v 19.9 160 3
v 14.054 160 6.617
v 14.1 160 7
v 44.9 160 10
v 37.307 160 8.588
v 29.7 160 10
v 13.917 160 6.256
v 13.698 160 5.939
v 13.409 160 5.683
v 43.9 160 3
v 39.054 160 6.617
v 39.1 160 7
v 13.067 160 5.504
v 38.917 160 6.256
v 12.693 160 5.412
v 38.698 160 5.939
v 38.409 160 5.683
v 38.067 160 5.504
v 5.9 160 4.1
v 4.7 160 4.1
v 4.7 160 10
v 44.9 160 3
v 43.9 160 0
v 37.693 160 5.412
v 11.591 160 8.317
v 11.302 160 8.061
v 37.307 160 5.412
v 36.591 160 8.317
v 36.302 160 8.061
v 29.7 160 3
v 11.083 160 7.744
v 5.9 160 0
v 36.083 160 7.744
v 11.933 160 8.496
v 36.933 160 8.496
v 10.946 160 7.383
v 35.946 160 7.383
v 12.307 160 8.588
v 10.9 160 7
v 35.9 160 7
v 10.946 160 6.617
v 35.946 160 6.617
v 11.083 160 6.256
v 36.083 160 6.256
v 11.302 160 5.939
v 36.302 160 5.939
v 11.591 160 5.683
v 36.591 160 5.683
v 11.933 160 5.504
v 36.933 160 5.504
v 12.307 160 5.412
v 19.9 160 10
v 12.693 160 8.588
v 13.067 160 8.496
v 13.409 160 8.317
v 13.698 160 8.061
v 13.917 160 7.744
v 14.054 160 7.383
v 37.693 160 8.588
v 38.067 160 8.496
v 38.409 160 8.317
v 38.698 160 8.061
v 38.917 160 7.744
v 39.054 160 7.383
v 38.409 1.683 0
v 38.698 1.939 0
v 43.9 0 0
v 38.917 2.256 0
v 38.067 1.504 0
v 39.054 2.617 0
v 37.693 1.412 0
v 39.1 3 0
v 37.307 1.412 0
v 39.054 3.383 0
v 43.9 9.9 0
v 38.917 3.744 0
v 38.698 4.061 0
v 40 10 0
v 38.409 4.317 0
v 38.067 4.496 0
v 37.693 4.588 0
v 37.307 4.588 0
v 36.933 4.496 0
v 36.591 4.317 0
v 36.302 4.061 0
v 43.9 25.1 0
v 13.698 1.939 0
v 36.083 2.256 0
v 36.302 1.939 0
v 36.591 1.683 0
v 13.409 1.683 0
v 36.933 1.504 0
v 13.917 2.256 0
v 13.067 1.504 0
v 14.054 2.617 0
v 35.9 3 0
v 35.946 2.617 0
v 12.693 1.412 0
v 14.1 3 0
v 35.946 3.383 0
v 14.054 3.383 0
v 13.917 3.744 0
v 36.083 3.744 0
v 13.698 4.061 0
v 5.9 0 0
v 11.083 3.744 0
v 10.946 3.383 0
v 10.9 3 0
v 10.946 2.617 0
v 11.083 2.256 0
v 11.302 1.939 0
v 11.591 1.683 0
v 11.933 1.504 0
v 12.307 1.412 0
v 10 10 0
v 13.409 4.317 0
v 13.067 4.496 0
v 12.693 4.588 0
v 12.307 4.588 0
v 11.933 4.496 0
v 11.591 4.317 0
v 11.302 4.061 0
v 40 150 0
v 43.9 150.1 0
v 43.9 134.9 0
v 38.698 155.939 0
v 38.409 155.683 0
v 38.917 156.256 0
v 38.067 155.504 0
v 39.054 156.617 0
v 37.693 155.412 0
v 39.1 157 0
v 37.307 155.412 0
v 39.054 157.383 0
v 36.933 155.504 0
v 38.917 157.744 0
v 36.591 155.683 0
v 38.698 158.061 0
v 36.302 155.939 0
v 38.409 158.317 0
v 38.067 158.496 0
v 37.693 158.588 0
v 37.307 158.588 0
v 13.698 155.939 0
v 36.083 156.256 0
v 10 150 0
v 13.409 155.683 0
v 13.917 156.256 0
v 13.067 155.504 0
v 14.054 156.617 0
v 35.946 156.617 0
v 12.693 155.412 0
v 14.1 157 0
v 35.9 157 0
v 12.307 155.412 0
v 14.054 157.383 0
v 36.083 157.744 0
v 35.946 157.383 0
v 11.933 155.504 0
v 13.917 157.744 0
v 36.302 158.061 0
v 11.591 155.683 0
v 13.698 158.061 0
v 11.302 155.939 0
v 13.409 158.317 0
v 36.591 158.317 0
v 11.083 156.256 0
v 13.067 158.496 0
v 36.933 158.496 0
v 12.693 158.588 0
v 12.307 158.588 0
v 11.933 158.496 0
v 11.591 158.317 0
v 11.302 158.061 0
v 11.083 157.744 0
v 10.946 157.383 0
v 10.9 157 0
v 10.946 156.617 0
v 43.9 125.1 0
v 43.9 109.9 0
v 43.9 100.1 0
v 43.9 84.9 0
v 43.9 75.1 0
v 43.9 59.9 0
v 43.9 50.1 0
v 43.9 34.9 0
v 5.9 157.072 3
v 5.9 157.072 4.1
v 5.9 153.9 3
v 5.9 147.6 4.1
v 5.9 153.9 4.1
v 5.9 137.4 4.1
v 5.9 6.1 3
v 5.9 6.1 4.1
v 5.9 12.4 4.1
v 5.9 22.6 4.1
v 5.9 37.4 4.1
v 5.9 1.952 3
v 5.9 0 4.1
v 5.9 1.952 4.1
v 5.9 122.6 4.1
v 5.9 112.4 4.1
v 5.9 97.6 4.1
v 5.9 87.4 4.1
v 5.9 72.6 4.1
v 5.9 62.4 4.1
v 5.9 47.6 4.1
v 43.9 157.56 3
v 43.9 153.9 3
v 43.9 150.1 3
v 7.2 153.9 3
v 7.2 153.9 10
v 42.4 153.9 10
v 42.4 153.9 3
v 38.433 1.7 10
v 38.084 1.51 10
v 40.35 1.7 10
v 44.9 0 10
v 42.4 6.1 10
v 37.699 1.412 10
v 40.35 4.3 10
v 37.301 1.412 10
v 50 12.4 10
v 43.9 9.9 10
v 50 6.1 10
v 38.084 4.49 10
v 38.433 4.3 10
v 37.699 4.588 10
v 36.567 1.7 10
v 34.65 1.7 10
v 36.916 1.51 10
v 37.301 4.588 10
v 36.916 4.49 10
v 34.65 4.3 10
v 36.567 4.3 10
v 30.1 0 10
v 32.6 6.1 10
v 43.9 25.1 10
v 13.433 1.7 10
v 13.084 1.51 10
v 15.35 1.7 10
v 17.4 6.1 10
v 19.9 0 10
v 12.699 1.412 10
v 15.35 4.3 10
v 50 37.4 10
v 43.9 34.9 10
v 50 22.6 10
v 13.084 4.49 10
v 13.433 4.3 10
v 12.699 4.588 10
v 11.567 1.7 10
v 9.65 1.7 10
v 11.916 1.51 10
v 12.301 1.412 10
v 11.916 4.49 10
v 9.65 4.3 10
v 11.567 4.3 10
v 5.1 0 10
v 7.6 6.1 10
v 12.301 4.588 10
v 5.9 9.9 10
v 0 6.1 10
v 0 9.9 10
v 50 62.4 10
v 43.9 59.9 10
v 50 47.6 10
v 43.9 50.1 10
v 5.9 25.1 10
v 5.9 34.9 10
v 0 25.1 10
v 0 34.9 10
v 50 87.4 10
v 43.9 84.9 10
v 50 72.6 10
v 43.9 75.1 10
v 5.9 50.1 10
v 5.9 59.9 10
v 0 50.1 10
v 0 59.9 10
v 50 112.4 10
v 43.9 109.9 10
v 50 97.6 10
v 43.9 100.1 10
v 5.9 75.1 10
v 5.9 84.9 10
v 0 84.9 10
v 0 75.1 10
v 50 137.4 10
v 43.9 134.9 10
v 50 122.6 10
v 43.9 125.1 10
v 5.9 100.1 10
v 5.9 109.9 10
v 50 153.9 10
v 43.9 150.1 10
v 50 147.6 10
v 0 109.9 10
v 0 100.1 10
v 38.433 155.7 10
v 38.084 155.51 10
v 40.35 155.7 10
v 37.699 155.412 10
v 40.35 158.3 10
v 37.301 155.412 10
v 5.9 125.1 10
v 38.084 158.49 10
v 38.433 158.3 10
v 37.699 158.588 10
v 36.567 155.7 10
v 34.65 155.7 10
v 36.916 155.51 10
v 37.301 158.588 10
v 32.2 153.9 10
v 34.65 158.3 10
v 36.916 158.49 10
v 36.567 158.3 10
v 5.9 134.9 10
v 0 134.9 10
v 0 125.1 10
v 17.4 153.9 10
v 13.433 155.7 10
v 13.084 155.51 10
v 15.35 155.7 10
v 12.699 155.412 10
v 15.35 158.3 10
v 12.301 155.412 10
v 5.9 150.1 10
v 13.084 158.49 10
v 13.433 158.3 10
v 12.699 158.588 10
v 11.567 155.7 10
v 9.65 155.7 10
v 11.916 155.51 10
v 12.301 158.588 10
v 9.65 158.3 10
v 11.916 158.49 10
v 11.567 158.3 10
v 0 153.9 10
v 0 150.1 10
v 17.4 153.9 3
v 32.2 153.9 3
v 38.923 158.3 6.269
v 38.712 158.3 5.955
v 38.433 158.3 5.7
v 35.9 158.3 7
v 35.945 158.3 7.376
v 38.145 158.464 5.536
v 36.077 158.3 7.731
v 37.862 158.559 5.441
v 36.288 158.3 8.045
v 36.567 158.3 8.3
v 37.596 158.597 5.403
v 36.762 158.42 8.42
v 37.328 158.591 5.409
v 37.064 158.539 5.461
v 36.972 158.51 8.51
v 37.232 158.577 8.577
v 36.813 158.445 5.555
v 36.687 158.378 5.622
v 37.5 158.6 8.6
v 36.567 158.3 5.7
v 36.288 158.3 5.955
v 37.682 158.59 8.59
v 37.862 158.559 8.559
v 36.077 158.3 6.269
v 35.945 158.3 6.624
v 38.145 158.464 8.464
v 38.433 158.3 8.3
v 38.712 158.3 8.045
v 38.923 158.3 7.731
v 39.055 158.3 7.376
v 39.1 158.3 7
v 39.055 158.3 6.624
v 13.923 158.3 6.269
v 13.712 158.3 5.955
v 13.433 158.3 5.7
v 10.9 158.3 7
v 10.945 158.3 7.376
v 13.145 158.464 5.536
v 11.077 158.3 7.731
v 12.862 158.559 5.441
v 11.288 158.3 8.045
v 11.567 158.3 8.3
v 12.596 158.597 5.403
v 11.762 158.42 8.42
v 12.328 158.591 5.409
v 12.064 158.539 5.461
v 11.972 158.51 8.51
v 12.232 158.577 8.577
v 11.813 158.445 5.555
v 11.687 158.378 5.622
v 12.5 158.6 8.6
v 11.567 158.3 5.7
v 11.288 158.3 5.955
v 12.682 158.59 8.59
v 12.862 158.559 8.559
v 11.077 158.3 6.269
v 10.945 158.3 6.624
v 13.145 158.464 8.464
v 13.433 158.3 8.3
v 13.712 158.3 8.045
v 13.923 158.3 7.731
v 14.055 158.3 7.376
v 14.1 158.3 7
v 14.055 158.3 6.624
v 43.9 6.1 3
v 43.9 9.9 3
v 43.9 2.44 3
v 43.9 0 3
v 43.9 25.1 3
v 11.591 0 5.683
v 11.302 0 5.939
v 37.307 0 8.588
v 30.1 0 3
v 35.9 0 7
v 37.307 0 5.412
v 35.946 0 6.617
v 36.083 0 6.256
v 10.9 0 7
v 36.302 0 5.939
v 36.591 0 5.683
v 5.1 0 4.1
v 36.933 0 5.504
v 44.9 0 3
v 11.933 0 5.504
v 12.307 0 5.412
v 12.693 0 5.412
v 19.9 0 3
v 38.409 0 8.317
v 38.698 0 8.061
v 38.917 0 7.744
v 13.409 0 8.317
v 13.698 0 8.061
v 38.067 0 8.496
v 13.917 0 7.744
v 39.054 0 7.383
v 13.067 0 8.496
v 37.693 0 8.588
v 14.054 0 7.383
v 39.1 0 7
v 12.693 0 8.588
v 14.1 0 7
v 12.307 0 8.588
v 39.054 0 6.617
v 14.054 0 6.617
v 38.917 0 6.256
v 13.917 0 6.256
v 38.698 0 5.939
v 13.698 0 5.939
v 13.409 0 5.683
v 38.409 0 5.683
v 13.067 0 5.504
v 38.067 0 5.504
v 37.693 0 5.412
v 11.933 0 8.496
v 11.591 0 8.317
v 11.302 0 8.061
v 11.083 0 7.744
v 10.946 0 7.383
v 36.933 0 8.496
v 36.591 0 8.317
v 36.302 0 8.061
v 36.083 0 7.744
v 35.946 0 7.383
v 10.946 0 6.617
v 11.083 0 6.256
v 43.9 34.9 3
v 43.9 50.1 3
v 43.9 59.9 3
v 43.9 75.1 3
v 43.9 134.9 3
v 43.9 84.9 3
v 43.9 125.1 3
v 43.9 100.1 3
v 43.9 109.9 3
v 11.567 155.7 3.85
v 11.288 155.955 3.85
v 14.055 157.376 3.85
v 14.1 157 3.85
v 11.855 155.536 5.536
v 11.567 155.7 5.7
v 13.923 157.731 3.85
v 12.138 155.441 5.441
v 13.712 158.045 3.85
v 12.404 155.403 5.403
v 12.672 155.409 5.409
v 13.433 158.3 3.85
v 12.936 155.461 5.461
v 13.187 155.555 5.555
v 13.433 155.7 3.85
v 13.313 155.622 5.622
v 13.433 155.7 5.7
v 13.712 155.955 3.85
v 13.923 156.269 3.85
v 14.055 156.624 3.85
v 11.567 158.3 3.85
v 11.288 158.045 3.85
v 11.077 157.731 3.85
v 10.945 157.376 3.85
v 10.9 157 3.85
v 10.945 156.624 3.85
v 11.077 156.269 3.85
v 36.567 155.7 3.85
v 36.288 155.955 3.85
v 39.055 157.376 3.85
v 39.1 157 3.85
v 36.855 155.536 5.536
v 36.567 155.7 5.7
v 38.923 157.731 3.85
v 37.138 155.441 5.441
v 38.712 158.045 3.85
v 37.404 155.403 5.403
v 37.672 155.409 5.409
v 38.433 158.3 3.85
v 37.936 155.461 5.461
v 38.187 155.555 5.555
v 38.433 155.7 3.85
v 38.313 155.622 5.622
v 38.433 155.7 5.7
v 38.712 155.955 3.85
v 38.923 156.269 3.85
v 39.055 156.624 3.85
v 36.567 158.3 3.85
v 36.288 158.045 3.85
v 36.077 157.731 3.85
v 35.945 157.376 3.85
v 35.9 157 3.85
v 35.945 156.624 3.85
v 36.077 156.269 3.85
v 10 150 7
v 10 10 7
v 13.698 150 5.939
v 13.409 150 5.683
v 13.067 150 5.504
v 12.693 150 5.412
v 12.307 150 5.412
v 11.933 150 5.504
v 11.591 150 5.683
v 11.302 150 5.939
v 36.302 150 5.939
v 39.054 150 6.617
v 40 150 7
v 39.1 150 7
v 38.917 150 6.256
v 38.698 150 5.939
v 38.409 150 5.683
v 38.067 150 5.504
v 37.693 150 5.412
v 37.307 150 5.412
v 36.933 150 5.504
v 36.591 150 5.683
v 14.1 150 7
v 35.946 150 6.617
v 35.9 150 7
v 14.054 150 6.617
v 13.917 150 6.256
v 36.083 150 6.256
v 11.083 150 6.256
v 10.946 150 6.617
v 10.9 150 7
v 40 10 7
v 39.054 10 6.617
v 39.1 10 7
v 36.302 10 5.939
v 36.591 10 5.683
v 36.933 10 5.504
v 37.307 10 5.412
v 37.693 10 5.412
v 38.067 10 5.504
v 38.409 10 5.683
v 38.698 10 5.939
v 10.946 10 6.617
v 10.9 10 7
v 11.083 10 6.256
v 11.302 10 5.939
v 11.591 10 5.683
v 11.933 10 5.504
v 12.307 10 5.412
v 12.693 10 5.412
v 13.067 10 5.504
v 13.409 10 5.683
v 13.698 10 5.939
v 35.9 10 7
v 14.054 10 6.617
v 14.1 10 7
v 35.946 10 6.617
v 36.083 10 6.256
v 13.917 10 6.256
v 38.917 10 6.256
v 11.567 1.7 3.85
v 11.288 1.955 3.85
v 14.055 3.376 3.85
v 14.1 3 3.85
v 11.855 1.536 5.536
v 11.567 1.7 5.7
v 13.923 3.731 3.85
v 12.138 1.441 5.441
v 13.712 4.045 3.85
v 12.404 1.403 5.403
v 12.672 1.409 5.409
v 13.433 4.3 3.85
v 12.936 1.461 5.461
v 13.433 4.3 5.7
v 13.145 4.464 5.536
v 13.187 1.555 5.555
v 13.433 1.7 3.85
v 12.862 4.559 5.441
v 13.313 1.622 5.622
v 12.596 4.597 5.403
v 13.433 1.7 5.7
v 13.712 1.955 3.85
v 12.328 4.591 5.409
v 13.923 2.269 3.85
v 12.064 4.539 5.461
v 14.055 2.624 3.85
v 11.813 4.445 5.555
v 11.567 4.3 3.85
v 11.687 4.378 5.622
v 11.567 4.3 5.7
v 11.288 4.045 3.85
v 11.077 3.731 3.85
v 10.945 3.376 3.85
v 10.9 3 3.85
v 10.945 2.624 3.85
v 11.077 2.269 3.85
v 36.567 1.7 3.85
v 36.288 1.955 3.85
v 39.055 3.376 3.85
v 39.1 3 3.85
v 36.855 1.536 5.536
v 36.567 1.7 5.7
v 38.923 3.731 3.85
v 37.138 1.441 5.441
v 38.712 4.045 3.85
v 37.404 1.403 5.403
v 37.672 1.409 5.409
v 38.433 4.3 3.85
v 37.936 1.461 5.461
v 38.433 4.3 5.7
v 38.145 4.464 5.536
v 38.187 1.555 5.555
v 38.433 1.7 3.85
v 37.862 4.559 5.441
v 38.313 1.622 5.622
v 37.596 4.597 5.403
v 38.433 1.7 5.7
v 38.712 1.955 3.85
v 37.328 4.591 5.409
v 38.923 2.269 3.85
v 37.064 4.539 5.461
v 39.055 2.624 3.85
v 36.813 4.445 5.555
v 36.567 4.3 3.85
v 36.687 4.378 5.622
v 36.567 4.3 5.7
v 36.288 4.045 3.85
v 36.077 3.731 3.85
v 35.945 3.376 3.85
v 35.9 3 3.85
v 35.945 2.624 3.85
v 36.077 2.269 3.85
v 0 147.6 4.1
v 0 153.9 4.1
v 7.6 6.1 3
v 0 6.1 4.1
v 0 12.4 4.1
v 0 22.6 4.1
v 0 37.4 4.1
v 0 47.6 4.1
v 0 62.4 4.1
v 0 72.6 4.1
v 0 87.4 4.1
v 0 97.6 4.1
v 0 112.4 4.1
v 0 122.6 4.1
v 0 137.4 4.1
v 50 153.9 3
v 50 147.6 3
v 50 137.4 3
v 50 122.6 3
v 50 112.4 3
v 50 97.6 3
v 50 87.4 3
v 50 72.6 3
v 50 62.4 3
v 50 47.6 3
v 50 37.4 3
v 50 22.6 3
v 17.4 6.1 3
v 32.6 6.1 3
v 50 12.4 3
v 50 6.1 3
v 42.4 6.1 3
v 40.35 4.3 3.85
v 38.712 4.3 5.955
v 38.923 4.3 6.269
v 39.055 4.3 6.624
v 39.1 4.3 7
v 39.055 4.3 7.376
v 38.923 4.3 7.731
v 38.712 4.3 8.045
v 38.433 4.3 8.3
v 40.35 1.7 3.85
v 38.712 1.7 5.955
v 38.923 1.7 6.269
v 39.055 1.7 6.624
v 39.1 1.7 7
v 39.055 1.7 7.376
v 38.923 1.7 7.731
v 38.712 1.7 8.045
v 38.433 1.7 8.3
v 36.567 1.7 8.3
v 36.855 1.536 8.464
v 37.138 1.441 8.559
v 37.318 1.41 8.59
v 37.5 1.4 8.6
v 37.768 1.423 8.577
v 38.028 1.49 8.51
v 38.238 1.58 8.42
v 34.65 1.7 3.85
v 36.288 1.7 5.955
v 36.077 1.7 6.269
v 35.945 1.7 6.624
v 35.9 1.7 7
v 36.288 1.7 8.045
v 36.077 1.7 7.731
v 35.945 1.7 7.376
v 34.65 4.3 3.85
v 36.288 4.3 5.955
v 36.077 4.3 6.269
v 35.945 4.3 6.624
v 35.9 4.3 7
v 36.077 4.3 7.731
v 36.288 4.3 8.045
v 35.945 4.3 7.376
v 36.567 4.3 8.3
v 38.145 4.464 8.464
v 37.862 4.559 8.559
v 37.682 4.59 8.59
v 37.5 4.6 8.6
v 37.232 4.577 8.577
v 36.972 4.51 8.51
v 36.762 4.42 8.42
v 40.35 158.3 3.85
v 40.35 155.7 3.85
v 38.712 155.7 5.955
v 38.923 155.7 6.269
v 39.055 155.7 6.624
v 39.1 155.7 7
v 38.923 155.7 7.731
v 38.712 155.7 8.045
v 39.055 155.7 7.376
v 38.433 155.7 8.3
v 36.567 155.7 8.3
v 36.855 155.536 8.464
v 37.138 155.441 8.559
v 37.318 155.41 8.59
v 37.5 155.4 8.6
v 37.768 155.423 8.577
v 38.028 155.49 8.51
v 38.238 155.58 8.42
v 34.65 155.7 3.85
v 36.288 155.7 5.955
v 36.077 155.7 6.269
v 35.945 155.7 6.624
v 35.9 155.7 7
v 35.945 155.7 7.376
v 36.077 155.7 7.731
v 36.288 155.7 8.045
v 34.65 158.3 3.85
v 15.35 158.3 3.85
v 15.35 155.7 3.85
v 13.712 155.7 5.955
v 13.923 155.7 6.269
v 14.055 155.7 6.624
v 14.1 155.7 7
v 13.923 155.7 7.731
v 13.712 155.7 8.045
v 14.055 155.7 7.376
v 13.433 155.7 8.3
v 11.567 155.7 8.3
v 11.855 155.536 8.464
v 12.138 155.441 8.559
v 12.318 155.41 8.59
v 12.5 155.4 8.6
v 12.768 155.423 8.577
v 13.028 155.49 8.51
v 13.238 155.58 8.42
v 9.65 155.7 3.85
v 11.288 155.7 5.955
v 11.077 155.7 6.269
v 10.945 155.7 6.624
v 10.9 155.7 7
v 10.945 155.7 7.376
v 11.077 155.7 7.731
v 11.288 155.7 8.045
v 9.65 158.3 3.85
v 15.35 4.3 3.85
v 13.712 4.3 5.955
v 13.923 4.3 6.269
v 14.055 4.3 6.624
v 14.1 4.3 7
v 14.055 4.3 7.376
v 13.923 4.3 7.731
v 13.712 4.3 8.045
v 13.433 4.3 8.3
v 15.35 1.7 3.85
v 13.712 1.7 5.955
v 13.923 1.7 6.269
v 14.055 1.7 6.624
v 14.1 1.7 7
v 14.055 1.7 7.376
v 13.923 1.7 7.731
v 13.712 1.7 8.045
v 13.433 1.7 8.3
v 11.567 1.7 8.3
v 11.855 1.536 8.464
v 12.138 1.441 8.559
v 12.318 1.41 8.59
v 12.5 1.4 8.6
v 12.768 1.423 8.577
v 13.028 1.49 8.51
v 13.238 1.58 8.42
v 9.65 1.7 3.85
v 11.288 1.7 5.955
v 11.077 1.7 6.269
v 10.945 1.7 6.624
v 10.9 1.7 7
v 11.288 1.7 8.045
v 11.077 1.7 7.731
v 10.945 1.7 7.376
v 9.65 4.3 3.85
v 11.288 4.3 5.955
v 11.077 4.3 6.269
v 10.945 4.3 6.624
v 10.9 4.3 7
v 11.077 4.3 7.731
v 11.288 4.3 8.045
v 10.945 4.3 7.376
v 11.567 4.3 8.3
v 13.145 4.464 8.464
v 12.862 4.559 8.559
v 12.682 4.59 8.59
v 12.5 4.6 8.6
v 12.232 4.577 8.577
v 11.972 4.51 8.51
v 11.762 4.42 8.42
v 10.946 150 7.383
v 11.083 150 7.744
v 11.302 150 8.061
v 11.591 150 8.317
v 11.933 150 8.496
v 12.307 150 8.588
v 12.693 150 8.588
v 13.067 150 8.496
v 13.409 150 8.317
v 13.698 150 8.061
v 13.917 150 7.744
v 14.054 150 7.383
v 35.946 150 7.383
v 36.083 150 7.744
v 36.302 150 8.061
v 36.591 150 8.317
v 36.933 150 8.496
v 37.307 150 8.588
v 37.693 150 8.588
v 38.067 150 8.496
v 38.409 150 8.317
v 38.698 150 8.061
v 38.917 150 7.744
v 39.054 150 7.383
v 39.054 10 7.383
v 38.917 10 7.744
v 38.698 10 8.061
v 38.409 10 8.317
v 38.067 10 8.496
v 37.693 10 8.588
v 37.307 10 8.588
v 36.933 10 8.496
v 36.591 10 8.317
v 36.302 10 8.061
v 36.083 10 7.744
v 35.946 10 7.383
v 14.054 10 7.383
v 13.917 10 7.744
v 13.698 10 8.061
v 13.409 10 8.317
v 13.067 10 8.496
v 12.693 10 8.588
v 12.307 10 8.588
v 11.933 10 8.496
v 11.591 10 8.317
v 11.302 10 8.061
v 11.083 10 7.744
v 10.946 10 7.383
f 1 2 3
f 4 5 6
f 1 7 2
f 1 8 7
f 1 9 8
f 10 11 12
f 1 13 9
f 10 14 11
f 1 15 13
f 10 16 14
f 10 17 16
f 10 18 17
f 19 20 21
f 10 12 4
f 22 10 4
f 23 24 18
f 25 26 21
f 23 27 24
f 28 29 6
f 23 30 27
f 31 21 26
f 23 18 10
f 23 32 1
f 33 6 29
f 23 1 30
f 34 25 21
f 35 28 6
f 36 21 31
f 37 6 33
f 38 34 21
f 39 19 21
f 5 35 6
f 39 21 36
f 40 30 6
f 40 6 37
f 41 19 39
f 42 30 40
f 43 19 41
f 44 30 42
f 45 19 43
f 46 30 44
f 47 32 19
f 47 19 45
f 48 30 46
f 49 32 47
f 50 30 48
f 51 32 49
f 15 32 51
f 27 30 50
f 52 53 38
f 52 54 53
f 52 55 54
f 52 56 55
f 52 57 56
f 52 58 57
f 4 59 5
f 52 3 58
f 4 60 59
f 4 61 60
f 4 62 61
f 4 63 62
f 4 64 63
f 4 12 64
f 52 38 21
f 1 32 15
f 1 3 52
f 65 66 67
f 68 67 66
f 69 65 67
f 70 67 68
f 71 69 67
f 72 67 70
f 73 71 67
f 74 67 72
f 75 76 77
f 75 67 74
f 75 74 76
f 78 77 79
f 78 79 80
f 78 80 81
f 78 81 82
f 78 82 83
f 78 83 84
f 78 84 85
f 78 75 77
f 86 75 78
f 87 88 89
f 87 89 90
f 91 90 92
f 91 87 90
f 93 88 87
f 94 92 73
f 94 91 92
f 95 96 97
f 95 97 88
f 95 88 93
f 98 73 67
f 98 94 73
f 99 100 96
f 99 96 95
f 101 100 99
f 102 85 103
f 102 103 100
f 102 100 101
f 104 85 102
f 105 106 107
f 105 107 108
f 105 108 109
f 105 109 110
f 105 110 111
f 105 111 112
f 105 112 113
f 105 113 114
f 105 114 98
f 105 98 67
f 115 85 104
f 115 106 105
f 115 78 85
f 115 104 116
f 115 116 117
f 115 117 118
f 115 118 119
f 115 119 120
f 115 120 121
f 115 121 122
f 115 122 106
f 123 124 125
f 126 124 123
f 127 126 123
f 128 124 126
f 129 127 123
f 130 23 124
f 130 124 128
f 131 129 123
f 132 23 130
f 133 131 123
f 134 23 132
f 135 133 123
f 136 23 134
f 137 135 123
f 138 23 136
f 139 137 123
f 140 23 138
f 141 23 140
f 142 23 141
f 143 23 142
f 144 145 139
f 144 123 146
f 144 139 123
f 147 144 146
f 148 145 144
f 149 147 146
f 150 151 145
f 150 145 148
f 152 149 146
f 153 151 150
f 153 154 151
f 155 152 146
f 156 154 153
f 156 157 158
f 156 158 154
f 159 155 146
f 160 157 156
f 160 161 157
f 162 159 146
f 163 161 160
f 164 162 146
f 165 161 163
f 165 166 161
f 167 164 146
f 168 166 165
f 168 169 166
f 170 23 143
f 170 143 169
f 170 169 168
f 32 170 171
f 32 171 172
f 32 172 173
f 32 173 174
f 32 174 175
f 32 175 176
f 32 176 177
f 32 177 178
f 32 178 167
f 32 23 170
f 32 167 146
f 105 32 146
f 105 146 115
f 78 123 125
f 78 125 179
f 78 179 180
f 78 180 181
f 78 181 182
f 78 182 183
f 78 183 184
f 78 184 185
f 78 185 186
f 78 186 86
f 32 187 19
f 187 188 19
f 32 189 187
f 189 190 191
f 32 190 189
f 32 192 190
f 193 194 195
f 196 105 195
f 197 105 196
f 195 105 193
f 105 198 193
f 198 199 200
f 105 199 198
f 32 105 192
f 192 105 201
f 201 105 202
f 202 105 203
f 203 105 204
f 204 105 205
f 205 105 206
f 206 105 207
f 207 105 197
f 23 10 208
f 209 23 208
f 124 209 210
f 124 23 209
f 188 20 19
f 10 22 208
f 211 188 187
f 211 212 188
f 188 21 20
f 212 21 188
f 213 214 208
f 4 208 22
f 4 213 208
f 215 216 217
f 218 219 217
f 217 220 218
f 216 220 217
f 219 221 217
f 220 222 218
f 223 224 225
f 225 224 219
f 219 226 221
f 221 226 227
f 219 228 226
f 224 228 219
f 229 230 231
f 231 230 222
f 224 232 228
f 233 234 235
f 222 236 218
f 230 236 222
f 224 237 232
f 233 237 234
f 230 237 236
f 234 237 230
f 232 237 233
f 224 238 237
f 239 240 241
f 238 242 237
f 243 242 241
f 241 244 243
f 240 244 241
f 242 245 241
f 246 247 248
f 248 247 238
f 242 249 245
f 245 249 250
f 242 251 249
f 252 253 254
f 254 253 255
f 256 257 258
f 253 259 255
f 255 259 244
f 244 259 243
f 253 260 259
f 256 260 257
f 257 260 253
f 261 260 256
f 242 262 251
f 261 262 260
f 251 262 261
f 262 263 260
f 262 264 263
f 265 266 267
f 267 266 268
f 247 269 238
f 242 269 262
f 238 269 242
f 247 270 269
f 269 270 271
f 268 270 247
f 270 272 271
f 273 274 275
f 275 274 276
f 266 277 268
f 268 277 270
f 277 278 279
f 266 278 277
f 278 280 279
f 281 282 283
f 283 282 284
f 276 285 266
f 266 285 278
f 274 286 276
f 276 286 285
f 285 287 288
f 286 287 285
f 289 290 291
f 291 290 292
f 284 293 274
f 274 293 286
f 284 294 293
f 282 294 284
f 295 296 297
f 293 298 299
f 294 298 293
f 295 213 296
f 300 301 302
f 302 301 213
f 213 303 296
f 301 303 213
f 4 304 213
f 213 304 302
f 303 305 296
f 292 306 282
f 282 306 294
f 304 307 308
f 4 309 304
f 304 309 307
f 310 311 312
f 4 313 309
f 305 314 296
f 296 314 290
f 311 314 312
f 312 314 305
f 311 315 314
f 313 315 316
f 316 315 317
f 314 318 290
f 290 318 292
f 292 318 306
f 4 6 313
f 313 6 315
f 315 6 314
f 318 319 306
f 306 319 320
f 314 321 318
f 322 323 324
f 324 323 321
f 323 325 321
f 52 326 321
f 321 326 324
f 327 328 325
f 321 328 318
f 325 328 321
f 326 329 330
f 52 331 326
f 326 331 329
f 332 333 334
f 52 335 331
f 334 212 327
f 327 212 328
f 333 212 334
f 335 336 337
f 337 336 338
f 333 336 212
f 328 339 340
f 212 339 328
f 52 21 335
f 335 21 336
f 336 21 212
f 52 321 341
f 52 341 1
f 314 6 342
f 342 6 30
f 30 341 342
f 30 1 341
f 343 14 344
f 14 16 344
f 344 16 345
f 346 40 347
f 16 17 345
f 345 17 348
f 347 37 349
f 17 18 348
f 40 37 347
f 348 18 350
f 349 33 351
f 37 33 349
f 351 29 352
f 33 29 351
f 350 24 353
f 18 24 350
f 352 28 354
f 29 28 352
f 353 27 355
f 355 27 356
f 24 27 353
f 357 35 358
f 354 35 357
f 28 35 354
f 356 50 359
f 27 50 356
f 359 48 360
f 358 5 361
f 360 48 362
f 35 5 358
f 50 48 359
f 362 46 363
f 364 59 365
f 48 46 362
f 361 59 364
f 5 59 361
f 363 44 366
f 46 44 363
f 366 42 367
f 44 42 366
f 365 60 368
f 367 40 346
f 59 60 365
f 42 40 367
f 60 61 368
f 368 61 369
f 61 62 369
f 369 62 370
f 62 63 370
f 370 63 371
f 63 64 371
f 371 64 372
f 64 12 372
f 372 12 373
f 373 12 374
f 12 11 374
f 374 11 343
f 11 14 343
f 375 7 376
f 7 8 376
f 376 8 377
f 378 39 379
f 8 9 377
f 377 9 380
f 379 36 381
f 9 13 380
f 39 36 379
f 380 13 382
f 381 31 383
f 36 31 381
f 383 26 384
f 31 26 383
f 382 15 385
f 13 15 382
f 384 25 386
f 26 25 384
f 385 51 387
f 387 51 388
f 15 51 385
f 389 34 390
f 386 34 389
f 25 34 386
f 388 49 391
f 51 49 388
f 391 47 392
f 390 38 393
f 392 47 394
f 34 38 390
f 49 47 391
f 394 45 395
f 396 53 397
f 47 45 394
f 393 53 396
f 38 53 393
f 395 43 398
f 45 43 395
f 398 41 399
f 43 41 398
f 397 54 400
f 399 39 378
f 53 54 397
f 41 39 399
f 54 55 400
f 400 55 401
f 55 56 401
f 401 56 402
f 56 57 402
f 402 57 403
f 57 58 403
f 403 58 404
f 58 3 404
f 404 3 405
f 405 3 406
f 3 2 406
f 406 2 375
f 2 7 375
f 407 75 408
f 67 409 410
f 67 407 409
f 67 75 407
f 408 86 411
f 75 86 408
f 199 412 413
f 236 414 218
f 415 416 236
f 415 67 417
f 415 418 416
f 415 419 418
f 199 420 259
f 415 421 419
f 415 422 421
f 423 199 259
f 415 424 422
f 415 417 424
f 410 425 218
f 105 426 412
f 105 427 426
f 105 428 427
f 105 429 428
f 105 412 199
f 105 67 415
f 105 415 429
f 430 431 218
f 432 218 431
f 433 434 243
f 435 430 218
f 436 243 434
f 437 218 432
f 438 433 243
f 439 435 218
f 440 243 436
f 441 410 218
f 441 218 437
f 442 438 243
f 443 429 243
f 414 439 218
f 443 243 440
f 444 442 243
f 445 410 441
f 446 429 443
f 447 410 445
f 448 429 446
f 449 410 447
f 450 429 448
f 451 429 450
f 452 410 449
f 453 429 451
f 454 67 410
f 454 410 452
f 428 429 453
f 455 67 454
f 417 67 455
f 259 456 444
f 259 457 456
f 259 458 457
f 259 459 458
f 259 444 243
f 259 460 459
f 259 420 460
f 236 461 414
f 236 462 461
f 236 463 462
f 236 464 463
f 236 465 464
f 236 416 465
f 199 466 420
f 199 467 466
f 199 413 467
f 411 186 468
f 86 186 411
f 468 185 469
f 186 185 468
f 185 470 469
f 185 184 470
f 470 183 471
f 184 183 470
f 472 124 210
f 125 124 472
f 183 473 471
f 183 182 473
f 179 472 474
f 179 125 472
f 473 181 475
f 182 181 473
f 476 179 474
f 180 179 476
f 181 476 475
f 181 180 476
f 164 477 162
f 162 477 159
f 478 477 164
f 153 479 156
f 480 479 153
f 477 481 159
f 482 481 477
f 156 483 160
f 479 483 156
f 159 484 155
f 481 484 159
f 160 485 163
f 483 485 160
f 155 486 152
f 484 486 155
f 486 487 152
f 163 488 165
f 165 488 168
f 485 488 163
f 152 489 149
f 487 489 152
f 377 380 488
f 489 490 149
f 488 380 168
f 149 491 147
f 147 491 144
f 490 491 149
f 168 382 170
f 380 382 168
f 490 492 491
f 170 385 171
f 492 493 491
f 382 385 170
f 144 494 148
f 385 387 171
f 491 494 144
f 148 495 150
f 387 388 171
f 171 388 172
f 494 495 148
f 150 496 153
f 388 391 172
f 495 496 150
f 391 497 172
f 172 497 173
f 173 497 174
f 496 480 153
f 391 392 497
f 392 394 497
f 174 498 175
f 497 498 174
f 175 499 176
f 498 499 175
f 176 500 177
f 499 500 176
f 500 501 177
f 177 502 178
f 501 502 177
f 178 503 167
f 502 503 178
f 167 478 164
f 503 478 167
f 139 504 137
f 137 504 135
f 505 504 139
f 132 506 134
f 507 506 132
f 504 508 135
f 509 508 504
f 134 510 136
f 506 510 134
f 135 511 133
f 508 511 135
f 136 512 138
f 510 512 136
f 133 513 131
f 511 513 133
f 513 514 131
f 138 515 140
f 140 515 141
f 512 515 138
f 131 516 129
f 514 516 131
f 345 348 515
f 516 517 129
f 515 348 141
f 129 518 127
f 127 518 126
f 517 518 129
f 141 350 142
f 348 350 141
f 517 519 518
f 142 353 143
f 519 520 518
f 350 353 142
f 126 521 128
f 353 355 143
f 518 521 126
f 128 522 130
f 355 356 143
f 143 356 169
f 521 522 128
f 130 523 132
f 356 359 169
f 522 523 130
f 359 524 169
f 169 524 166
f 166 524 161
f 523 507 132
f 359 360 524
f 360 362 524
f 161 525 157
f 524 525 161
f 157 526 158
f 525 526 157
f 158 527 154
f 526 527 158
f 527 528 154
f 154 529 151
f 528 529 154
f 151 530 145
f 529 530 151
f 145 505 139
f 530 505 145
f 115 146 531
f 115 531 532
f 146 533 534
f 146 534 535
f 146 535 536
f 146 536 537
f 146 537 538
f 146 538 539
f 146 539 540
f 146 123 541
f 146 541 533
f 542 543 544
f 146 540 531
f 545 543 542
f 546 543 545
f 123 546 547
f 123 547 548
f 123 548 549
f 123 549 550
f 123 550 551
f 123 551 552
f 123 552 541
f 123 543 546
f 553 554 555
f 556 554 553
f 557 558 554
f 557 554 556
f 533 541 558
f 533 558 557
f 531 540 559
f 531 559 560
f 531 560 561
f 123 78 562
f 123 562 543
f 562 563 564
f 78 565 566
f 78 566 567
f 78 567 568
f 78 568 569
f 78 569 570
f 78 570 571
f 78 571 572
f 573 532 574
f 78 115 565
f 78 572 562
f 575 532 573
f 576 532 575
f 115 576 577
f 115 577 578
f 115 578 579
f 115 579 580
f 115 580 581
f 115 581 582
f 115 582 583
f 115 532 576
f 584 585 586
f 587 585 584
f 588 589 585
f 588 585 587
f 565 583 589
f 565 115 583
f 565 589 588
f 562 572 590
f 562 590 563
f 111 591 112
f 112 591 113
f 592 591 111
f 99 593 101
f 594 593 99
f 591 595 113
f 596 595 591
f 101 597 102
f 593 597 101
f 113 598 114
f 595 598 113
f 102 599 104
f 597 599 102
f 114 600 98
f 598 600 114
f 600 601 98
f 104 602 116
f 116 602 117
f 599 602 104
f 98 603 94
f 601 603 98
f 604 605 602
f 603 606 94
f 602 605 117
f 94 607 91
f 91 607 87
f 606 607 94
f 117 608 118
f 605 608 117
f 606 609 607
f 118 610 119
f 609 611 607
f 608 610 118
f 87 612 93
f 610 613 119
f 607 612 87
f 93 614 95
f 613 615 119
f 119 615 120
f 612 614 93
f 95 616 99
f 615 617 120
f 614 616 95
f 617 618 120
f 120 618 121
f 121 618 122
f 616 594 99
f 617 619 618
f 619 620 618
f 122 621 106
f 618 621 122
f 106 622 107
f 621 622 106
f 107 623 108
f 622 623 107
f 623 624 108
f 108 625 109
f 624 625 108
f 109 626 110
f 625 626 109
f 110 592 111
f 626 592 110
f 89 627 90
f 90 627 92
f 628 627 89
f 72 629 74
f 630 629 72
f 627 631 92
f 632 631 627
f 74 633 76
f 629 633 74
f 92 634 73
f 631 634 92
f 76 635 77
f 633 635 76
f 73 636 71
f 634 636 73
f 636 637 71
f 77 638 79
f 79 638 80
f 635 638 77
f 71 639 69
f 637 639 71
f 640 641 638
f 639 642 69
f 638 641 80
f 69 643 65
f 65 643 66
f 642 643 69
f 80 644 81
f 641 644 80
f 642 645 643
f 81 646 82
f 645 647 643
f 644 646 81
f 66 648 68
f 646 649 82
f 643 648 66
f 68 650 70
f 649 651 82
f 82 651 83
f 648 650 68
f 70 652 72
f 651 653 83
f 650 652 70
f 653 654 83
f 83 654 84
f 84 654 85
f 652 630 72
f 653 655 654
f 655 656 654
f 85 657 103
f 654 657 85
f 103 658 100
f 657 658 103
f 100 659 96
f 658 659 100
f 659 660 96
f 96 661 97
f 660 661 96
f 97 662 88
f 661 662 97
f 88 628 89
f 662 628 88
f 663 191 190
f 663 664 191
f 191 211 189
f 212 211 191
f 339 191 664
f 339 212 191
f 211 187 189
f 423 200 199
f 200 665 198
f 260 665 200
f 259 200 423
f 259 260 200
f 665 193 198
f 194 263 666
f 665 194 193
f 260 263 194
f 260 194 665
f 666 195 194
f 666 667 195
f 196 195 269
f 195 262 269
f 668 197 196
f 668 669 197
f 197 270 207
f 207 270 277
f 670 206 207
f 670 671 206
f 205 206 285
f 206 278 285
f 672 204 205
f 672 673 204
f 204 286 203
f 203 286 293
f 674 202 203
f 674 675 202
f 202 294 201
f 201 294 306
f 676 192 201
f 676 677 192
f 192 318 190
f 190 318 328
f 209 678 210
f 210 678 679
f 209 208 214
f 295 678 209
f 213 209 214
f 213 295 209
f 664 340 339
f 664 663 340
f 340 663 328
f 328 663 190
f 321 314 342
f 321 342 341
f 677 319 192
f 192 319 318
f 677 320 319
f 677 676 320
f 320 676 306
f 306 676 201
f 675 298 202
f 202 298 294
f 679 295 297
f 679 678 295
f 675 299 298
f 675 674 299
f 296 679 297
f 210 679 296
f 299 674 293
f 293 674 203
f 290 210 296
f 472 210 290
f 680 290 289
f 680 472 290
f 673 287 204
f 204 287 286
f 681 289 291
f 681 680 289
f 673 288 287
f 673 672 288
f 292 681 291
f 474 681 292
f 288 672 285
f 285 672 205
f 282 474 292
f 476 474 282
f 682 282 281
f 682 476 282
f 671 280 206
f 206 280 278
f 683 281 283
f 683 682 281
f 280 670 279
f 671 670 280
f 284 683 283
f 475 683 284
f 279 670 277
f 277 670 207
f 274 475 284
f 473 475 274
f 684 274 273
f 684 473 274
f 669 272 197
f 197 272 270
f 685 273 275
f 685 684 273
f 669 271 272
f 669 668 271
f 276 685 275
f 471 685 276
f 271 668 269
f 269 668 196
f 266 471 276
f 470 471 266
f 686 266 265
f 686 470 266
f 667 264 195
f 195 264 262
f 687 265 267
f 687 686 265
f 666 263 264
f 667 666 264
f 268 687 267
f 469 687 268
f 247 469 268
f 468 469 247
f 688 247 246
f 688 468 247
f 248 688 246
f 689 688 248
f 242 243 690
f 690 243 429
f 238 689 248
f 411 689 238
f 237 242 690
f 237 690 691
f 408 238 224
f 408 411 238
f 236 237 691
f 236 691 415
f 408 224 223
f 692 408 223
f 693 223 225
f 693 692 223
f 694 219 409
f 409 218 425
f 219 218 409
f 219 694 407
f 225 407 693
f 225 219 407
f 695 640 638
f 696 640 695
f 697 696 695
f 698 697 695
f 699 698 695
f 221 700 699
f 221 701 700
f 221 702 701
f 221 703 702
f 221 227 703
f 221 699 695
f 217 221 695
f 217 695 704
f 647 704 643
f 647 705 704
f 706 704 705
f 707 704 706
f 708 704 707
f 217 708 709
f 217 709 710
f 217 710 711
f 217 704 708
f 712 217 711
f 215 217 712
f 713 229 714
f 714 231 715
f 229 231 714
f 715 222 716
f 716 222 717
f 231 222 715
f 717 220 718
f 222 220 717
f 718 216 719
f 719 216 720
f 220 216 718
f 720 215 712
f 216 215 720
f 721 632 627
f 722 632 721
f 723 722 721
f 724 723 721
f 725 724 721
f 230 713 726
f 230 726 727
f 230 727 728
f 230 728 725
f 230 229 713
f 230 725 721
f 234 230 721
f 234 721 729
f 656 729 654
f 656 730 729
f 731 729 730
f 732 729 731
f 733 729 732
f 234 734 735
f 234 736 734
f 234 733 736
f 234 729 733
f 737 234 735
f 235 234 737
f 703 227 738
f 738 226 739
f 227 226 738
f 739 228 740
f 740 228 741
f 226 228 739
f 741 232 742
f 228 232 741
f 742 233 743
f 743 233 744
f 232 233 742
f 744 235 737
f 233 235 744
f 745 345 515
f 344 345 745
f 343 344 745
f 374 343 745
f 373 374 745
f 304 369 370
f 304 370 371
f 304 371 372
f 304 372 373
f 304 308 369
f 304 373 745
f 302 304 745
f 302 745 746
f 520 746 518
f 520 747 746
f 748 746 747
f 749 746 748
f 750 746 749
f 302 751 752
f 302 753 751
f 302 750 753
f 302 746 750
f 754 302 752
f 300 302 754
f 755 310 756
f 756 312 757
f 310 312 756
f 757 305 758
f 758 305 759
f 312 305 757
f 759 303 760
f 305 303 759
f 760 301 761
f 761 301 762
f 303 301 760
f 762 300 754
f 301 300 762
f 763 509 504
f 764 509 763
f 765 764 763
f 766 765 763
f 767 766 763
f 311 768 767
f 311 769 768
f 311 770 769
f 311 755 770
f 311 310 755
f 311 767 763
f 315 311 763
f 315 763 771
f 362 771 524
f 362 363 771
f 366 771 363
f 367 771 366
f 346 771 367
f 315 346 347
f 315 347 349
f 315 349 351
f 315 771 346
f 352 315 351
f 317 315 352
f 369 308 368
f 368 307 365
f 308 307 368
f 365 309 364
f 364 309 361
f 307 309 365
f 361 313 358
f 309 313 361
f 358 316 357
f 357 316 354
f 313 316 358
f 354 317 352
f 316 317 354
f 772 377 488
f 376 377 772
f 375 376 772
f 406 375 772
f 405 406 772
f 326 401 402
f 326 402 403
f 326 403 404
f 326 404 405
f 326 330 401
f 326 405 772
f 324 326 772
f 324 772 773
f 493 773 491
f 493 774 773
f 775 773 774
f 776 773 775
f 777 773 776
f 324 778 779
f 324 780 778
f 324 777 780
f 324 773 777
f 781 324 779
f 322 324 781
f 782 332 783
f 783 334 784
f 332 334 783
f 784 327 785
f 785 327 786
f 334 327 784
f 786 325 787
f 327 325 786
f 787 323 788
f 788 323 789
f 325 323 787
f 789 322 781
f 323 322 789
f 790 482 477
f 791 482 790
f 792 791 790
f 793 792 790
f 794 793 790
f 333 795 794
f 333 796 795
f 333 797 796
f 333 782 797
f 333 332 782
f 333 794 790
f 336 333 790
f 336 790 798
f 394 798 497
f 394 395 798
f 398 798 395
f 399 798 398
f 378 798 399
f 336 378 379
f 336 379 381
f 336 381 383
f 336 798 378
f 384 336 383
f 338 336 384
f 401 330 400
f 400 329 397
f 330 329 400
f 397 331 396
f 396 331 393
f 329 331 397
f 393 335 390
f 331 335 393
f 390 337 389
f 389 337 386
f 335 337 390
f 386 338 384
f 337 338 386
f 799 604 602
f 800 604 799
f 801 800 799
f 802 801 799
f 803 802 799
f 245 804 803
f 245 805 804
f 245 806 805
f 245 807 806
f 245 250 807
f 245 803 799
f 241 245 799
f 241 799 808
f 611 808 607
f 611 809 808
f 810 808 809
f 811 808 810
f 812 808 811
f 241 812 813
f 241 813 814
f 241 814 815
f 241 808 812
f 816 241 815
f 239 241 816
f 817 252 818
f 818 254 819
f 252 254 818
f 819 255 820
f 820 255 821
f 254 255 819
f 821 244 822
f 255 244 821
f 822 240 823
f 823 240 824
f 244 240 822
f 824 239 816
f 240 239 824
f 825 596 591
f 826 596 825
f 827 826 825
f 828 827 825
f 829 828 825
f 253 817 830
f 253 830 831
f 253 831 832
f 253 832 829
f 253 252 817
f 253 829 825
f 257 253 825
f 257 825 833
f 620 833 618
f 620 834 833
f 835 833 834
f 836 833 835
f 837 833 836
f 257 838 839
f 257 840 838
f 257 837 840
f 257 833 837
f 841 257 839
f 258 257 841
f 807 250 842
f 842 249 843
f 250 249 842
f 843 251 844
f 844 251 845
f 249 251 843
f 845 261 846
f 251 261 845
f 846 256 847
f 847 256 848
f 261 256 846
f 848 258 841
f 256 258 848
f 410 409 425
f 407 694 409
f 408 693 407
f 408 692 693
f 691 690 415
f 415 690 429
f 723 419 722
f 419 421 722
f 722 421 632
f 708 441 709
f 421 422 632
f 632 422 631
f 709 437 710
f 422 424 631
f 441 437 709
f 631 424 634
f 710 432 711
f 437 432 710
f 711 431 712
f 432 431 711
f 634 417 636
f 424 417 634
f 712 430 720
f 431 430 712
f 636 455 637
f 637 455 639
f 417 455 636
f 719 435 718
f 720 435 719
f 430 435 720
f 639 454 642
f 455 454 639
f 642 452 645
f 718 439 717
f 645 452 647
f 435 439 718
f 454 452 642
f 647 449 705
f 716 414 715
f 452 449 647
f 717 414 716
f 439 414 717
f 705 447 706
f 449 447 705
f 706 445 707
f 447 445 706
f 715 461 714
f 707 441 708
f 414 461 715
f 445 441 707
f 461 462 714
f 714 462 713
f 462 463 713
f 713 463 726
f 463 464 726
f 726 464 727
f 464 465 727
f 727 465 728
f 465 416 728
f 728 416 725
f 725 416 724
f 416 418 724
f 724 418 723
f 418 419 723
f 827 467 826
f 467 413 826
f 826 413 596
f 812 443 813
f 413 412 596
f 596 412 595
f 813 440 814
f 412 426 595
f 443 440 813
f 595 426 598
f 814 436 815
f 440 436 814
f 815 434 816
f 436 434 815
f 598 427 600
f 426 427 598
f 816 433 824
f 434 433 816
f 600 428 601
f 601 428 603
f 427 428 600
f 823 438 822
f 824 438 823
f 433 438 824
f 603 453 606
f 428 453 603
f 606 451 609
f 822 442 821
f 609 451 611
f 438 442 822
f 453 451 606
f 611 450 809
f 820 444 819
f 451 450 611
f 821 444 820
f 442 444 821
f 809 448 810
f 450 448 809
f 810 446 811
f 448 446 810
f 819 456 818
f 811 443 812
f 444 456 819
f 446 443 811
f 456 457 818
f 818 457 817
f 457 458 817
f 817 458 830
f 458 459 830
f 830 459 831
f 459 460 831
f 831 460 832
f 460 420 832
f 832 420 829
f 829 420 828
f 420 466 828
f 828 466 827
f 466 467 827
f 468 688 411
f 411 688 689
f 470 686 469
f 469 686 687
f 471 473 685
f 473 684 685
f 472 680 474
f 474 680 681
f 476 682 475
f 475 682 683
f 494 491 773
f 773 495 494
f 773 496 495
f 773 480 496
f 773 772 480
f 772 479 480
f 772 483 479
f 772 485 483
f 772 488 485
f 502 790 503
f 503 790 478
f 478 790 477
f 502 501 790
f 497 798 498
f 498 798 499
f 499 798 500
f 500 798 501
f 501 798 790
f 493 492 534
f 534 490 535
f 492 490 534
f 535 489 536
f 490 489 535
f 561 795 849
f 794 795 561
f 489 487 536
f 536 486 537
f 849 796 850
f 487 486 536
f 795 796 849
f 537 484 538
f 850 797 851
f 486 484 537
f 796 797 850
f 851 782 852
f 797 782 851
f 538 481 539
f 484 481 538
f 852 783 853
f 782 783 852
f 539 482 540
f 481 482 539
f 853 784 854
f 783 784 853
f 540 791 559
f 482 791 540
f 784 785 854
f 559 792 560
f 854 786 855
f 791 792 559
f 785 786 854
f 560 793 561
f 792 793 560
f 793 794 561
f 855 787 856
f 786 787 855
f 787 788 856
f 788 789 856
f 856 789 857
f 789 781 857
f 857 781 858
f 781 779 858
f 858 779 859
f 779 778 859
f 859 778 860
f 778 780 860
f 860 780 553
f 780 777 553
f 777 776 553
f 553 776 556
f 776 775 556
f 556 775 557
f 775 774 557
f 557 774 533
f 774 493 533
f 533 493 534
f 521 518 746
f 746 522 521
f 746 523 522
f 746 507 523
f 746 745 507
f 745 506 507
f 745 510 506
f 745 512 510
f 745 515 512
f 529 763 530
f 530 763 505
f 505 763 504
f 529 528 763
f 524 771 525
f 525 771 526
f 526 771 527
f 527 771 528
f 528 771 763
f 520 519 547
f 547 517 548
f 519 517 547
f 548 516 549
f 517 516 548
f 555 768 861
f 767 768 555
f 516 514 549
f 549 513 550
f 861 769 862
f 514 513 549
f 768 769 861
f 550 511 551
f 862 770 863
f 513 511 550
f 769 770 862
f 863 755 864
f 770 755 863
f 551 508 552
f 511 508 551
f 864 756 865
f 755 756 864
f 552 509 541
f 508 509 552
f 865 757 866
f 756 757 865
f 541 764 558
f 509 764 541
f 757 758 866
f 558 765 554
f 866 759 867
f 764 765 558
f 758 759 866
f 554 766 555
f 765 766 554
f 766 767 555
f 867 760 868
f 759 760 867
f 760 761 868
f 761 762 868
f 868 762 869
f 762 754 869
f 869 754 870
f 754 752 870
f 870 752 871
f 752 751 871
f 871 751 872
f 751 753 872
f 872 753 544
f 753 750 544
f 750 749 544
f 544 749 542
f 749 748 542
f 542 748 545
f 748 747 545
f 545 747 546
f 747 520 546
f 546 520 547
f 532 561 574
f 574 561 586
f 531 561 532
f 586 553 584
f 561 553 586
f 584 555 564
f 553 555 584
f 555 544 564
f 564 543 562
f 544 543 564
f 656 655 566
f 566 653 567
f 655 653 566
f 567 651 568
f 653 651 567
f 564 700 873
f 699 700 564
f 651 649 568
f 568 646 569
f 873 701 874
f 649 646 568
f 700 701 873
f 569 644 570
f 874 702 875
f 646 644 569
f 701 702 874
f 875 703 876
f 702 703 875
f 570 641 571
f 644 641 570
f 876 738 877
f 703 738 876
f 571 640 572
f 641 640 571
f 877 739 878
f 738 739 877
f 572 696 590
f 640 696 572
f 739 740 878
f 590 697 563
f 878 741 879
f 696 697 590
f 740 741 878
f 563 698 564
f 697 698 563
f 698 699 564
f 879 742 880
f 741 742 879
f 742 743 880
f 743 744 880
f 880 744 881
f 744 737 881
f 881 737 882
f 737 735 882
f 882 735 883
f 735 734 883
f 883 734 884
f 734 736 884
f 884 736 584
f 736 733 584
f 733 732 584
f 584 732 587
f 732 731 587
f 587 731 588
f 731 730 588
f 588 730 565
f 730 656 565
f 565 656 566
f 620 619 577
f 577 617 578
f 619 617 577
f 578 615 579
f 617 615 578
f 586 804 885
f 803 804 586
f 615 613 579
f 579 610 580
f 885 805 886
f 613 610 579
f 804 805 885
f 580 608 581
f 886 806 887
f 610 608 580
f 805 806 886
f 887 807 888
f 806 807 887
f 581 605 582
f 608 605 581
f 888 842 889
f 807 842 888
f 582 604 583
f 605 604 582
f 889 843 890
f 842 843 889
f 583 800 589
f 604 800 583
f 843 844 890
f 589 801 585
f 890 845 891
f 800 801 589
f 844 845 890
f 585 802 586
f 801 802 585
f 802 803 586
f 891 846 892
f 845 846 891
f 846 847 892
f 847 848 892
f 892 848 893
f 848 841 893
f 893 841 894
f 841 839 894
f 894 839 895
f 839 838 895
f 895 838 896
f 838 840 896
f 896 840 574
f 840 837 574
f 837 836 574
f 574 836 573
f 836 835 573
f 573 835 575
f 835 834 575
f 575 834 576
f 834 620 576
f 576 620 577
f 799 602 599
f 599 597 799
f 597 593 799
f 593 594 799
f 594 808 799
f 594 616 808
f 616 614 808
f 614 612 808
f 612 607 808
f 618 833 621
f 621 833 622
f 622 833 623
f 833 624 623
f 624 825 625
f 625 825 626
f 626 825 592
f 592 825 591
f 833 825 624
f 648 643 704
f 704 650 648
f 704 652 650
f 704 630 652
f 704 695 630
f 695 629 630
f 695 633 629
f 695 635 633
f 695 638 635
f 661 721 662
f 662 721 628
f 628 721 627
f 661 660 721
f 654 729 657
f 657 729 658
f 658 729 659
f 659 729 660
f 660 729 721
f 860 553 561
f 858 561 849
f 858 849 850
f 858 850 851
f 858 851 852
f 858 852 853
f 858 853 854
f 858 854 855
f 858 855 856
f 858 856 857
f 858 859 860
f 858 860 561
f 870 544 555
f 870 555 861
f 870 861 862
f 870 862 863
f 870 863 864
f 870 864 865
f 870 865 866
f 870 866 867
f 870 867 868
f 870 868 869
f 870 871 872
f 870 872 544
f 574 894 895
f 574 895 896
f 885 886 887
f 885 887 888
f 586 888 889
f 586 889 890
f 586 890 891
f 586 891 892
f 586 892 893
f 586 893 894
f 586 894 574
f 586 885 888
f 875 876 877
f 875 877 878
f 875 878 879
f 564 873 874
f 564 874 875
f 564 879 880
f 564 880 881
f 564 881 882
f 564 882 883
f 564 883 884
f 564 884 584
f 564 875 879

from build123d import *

# Parameters (mm, degrees)
SKETCH_W        = 50
SKETCH_H        = 160
PAD_DEPTH       = 10
POCKET_DEPTH    = 7
SKETCH003_R     = 1.6
POCKET002_DEPTH = 10
POCKET003_DEPTH = 10
SKETCH005_W     = 6.1
SKETCH005_H     = 160
POCKET004_DEPTH = 3
POCKET005_DEPTH = 5.9
SKETCH007_W     = 160
SKETCH007_H     = 4.1
POCKET006_DEPTH = 5.9
SKETCH008_W     = 30
SKETCH008_H     = 140
POCKET007_DEPTH = 7
SKETCH009_W     = 5.7
SKETCH009_H     = 2.6
POCKET008_DEPTH = 6.15
SKETCH010_R     = 1.6
POCKET009_DEPTH = 10
SKETCH011_R     = 1.6
POCKET010_DEPTH = 10


with BuildPart() as part:
    # Sketch → Pad (new body)
    with BuildSketch(Plane.XY):
        with Locations((25, 80)):
            Rectangle(SKETCH_W, SKETCH_H)
    extrude(amount=PAD_DEPTH)

    # Sketch001 (on Face6 of Pad) → Pocket (cut)
    with BuildSketch(Plane.XY.offset(10)):
        Polygon((17.4, 6.1), (32.6, 6.1), (30.1, 0), (19.9, 0), align=None)
        Polygon((42.4, 6.1), (57.6, 6.1), (55.1, 0), (44.9, 0), align=None)
        Polygon((-7.6, 6.1), (7.6, 6.1), (5.1, 0), (-5.1, 0), align=None)
        Polygon((32.2, 153.9), (17.4, 153.9), (19.9, 160), (29.7, 160), align=None)
        Polygon((7.2, 153.9), (-7.6, 153.9), (-5.1, 160), (4.7, 160), align=None)
        Polygon((57.2, 153.9), (42.4, 153.9), (44.9, 160), (54.7, 160), align=None)
    extrude(amount=-POCKET_DEPTH, mode=Mode.SUBTRACT)

    # Sketch003 → Pocket002 (cut)
    with BuildSketch(Plane.XY.offset(10)):
        with Locations((12.5, 157)):
            Circle(SKETCH003_R)
        with Locations((37.5, 157)):
            Circle(SKETCH003_R)
        with Locations((12.5, 3)):
            Circle(SKETCH003_R)
        with Locations((37.5, 3)):
            Circle(SKETCH003_R)
    extrude(amount=-POCKET002_DEPTH, mode=Mode.SUBTRACT)

    # Sketch004 (on Face2 of Pocket002) → Pocket003 (cut)
    with BuildSketch(Plane(origin=(0, 0, 0), x_dir=(1, 0, 0), z_dir=(0, 0, -1))):
        Polygon((43.9, -84.9), (43.9, -100.1), (50, -97.6), (50, -87.4), align=None)
        Polygon((43.9, -59.9), (43.9, -75.1), (50, -72.6), (50, -62.4), align=None)
        Polygon((43.9, -34.9), (43.9, -50.1), (50, -47.6), (50, -37.4), align=None)
        Polygon((43.9, -9.9), (43.9, -25.1), (50, -22.6), (50, -12.4), align=None)
        Polygon((43.9, -134.9), (43.9, -150.1), (50, -147.6), (50, -137.4), align=None)
        Polygon((43.9, -109.9), (43.9, -125.1), (50, -122.6), (50, -112.4), align=None)
    extrude(amount=-POCKET003_DEPTH, mode=Mode.SUBTRACT)

    # Sketch005 (on Face2 of Pocket003) → Pocket004 (cut)
    with BuildSketch(Plane(origin=(0, 0, 0), x_dir=(1, 0, 0), z_dir=(0, 0, -1))):
        with Locations((46.95, -80)):
            Rectangle(SKETCH005_W, SKETCH005_H)
    extrude(amount=-POCKET004_DEPTH, mode=Mode.SUBTRACT)

    # Sketch006 (on Face12 of Pocket004) → Pocket005 (cut)
    with BuildSketch(Plane(origin=(0, 0, 0), x_dir=(0, -1, 0), z_dir=(-1, 0, 0))):
        Polygon((-100.1, 10), (-84.9, 10), (-87.4, 4.1), (-97.6, 4.1), align=None)
        Polygon((-75.1, 10), (-59.9, 10), (-62.4, 4.1), (-72.6, 4.1), align=None)
        Polygon((-150.1, 10), (-134.9, 10), (-137.4, 4.1), (-147.6, 4.1), align=None)
        Polygon((-125.1, 10), (-109.9, 10), (-112.4, 4.1), (-122.6, 4.1), align=None)
        Polygon((-50.1, 10), (-34.9, 10), (-37.4, 4.1), (-47.6, 4.1), align=None)
        Polygon((-25.1, 10), (-9.9, 10), (-12.4, 4.1), (-22.6, 4.1), align=None)
    extrude(amount=-POCKET005_DEPTH, mode=Mode.SUBTRACT)

    # Sketch007 (on Face12 of Pocket005) → Pocket006 (cut)
    with BuildSketch(Plane(origin=(0, 0, 0), x_dir=(0, -1, 0), z_dir=(-1, 0, 0))):
        with Locations((-80, 2.05)):
            Rectangle(SKETCH007_W, SKETCH007_H)
    extrude(amount=-POCKET006_DEPTH, mode=Mode.SUBTRACT)

    # Sketch008 (on Face2 of Pocket006) → Pocket007 (cut)
    with BuildSketch(Plane(origin=(0, 0, 0), x_dir=(1, 0, 0), z_dir=(0, 0, -1))):
        with Locations((25, -80)):
            Rectangle(SKETCH008_W, SKETCH008_H)
    extrude(amount=-POCKET007_DEPTH, mode=Mode.SUBTRACT)

    # Sketch009 (on Face6 of Pocket007) → Pocket008 (cut)
    with BuildSketch(Plane.XY.offset(10)):
        with Locations((12.5, 157)):
            Rectangle(SKETCH009_W, SKETCH009_H)
        with Locations((37.5, 157)):
            Rectangle(SKETCH009_W, SKETCH009_H)
        with Locations((12.5, 3)):
            Rectangle(SKETCH009_W, SKETCH009_H)
        with Locations((37.5, 3)):
            Rectangle(SKETCH009_W, SKETCH009_H)
    extrude(amount=-POCKET008_DEPTH, mode=Mode.SUBTRACT)

    # Sketch010 (on Face15 of Pocket008) → Pocket009 (cut)
    with BuildSketch(Plane.XZ):
        with Locations((12.5, 7)):
            Circle(SKETCH010_R)
        with Locations((37.5, 7)):
            Circle(SKETCH010_R)
    extrude(amount=-POCKET009_DEPTH, mode=Mode.SUBTRACT)

    # Sketch011 (on Face1 of Pocket009) → Pocket010 (cut)
    with BuildSketch(Plane(origin=(0, 160, 0), x_dir=(-1, 0, 0), z_dir=(0, 1, 0))):
        with Locations((-37.5, 7)):
            Circle(SKETCH011_R)
        with Locations((-12.5, 7)):
            Circle(SKETCH011_R)
    extrude(amount=-POCKET010_DEPTH, mode=Mode.SUBTRACT)


solid = part.part
